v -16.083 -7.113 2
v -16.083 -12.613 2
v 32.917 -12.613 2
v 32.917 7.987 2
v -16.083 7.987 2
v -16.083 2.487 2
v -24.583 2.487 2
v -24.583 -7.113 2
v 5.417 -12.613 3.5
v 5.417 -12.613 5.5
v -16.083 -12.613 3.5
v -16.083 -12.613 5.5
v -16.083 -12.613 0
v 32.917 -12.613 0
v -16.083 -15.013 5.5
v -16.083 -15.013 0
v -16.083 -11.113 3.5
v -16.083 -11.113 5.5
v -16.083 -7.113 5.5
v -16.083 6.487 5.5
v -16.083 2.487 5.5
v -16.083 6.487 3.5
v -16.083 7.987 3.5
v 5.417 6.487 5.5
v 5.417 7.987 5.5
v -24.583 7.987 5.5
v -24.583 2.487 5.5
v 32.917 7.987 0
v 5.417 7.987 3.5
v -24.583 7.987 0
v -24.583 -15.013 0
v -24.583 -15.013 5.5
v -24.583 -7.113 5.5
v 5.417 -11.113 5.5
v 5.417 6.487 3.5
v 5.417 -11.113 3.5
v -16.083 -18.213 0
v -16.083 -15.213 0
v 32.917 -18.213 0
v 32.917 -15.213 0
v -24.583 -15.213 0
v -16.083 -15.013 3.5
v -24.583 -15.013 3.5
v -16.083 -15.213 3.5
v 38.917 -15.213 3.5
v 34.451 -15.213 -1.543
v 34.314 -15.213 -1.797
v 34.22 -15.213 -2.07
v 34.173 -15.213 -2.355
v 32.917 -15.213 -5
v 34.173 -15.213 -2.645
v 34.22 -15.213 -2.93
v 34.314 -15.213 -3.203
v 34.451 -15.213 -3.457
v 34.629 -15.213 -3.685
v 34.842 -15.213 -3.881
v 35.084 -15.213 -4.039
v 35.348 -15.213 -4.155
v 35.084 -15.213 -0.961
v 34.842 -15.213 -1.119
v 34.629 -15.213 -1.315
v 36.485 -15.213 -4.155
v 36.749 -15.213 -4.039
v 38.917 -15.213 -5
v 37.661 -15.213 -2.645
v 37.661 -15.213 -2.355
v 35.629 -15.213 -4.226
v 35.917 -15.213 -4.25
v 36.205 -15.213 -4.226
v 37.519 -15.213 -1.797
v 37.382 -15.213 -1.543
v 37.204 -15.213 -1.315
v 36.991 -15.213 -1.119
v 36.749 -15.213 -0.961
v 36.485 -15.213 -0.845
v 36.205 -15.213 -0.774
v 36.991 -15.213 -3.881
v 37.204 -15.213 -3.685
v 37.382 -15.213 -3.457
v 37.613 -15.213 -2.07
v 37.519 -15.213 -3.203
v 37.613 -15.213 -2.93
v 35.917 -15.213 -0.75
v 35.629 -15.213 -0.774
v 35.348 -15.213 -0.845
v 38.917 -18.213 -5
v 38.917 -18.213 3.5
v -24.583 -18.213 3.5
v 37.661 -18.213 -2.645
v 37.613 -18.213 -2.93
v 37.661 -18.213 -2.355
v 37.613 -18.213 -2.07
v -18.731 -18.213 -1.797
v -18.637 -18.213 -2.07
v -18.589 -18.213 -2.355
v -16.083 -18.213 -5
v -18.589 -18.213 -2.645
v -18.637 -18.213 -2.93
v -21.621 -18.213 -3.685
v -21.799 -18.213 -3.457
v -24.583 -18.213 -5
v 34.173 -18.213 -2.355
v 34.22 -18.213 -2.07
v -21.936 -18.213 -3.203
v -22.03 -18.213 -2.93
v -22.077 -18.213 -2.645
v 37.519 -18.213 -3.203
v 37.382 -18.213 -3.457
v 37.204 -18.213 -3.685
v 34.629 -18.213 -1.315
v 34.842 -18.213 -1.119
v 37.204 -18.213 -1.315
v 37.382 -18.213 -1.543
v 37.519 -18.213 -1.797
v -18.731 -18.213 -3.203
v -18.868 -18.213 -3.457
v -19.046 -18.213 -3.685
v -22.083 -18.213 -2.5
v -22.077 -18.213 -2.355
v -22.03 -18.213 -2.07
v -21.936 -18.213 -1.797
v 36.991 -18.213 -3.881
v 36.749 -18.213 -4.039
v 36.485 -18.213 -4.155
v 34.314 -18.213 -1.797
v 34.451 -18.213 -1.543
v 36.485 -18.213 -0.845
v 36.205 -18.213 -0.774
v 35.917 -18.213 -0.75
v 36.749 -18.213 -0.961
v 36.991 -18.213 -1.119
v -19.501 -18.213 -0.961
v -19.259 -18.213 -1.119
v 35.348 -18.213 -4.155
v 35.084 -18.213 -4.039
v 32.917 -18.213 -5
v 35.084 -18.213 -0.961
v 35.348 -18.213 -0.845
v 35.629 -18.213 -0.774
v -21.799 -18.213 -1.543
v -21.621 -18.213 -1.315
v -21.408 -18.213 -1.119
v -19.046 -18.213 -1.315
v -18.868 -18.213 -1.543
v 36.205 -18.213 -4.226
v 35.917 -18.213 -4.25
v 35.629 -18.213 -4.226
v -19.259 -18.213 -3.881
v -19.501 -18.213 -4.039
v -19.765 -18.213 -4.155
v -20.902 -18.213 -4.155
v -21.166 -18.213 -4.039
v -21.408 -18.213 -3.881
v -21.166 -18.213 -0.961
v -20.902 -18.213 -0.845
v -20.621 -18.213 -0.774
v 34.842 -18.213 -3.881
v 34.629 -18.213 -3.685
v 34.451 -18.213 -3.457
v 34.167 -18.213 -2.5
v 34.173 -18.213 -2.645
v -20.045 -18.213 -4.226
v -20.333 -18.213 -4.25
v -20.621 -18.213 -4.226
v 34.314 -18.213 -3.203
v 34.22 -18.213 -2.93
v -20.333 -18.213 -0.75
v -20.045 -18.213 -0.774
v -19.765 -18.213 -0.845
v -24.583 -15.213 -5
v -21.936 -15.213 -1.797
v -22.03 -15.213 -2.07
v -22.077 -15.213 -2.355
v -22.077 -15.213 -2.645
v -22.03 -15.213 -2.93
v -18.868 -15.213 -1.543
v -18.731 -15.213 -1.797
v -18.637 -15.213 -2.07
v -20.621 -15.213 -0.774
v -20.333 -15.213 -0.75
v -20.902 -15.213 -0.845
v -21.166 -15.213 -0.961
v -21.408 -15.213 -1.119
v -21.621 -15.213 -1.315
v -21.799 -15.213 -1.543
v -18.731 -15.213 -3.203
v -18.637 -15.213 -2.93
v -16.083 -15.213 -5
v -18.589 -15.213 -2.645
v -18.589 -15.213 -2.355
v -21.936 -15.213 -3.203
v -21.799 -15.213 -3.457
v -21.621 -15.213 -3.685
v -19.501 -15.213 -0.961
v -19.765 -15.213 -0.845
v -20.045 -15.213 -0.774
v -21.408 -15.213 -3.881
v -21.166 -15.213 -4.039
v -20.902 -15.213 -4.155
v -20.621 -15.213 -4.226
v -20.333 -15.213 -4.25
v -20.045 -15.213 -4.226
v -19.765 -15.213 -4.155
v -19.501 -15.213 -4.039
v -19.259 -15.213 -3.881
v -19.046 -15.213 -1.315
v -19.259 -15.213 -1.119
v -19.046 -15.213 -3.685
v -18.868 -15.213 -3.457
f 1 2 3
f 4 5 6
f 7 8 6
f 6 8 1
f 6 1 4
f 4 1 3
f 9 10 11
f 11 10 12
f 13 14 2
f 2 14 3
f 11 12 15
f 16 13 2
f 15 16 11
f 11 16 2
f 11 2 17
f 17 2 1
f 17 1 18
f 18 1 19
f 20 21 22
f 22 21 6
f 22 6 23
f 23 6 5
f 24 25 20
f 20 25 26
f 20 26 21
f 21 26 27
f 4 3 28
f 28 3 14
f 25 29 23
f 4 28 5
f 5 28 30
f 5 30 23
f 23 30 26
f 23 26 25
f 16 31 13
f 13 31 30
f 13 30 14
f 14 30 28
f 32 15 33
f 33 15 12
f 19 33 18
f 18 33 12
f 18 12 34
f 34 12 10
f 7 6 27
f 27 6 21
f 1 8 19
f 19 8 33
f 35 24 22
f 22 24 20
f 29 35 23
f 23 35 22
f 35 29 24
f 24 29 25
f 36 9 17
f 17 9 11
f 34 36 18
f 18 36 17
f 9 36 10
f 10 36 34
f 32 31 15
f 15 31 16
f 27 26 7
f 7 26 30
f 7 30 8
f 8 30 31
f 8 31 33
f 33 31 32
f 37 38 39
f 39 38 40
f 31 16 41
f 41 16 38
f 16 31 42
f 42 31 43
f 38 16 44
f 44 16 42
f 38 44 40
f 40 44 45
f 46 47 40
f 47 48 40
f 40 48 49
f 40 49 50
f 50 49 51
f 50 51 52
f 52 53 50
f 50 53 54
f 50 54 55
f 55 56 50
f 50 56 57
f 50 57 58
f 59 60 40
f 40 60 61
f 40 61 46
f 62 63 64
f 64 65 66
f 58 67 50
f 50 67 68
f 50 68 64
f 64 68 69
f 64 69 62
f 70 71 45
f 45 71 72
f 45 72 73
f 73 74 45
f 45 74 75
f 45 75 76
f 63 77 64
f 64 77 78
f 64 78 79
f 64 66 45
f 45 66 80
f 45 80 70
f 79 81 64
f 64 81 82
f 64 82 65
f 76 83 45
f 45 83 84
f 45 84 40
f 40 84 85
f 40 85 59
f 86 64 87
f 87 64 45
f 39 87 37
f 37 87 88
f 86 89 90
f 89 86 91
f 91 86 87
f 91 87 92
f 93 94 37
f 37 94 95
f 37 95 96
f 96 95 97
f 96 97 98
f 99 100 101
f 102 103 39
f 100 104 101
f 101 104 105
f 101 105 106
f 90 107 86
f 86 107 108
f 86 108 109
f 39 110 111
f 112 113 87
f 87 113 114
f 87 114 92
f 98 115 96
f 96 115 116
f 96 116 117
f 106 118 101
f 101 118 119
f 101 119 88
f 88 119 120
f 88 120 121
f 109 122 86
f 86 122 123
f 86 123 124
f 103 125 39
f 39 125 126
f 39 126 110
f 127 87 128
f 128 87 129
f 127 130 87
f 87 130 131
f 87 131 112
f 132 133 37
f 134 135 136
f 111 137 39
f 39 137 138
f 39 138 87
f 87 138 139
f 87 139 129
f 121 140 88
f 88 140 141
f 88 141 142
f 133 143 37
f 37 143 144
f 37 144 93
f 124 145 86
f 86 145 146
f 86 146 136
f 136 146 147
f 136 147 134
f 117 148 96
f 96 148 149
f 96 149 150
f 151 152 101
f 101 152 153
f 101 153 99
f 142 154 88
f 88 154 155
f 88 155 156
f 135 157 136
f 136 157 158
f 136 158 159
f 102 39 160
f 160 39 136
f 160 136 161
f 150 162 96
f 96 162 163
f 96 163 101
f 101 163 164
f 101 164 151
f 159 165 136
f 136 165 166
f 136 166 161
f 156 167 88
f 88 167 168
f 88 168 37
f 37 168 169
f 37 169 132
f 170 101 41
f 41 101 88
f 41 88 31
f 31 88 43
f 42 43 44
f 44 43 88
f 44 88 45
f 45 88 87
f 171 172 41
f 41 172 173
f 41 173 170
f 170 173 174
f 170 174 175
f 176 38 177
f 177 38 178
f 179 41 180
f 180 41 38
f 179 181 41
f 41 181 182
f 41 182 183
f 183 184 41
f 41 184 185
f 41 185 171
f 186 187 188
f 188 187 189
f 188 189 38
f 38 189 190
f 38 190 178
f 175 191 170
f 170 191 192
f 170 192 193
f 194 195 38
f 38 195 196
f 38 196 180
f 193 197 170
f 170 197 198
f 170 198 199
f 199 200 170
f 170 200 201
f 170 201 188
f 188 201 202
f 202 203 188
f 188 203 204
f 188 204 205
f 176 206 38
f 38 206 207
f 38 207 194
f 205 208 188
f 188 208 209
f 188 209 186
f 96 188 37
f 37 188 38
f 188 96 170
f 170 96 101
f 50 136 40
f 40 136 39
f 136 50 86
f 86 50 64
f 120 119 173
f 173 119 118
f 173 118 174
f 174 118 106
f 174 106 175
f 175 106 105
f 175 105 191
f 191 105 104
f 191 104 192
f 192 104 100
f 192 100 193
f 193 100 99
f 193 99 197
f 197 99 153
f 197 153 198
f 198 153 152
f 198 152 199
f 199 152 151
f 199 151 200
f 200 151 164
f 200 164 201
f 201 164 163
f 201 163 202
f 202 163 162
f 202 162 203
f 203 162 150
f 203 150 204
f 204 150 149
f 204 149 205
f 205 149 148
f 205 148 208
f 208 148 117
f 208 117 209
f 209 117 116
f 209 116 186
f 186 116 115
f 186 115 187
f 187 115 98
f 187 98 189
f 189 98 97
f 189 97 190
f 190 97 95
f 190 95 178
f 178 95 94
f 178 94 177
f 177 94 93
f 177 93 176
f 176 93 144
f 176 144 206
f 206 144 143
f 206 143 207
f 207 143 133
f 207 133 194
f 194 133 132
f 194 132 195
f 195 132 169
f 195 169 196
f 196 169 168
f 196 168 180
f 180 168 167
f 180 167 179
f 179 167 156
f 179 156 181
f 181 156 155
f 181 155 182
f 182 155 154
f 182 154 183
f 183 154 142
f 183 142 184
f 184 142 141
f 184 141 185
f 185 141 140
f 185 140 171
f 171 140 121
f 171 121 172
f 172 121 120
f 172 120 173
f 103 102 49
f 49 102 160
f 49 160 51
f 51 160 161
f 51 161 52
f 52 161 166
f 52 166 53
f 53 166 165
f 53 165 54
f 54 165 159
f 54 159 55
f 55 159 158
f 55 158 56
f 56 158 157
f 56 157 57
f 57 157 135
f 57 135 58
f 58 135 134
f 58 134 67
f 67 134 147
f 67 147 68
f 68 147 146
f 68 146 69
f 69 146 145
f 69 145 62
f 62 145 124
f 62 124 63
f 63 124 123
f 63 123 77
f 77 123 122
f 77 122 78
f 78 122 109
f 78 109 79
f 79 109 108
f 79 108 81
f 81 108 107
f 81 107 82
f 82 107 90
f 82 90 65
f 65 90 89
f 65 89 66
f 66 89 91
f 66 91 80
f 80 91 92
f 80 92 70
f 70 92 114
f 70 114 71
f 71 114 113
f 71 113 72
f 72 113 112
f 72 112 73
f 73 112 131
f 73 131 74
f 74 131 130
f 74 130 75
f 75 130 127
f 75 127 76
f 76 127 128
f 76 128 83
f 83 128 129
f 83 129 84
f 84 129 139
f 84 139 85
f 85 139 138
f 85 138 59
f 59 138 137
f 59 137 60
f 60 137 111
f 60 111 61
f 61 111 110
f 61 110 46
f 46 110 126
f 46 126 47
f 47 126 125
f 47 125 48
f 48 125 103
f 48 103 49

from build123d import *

# Parameters (mm, degrees)
ESBO_O1_W                 = 52.5
ESBO_O1_H                 = 20.6
RESSALTO_EXTRUS_O1_DEPTH  = 2
ESBO_O2_W                 = 3.5
ESBO_O2_H                 = 20.6
RESSALTO_EXTRUS_O2_DEPTH  = 3.5
ESBO_O3_W                 = 3.5
ESBO_O3_H                 = 9.6
CORTE_EXTRUS_O1_DEPTH     = 3.5
ESBO_O4_W                 = 2
ESBO_O4_H                 = 1.5
RESSALTO_EXTRUS_O3_DEPTH  = 21.5
RESSALTO_EXTRUS_O4_DEPTH  = 2
ESBO_O9_W                 = 5
ESBO_O9_H                 = 5.5
RESSALTO_EXTRUS_O8_DEPTH  = 3.5
RESSALTO_EXTRUS_O9_DEPTH  = 3.5
ESBO_O11_W                = 8.5
ESBO_O11_H                = 3
ESBO_O11_W_2              = 6
RESSALTO_EXTRUS_O10_DEPTH = 5
ESBO_O12_R                = 1.75
CORTE_EXTRUS_O2_DEPTH     = 5


with BuildPart() as part:
    # Esboço1 → Ressalto-extrusão1 (new body)
    with BuildSketch(Plane.XY):
        with Locations((6.666541047, -2.313135593)):
            Rectangle(ESBO_O1_W, ESBO_O1_H)
    extrude(amount=RESSALTO_EXTRUS_O1_DEPTH)

    # Esboço2 → Ressalto-extrusão2 (add)
    with BuildSketch(Plane.XY.offset(2)):
        with Locations((-17.833458953, -2.313135593)):
            Rectangle(ESBO_O2_W, ESBO_O2_H)
    extrude(amount=RESSALTO_EXTRUS_O2_DEPTH)

    # Esboço3 → Corte-extrusão1 (cut)
    with BuildSketch(Plane.XY.offset(5.5)):
        with Locations((-17.833458953, -2.313135593)):
            Rectangle(ESBO_O3_W, ESBO_O3_H)
    extrude(amount=-CORTE_EXTRUS_O1_DEPTH, mode=Mode.SUBTRACT)

    # Esboço4 → Ressalto-extrusão3 (add)
    with BuildSketch(Plane(origin=(-16.083458953, 0, 0), x_dir=(0, 0, -1), z_dir=(1, 0, 0))):
        with Locations((-4.5, 7.236864407)):
            Rectangle(ESBO_O4_W, ESBO_O4_H)
        with Locations((-4.5, -11.863135593)):
            Rectangle(ESBO_O4_W, ESBO_O4_H)
    extrude(amount=RESSALTO_EXTRUS_O3_DEPTH)

    # Esboço5 → Ressalto-extrusão4 (add)
    with BuildSketch(Plane.XY.offset(2)):
        Polygon((-19.583458953, 7.986864407), (-24.583458953, 7.986864407), (-24.583458953, -12.613135593), (-24.583458953, -15.013135593), (-16.083458953, -15.013135593), (-16.083458953, -12.613135593), (-19.583458953, -12.613135593), align=None)
    extrude(amount=-RESSALTO_EXTRUS_O4_DEPTH)

    # Esboço9 → Ressalto-extrusão8 (add, through all)
    with BuildSketch(Plane.XY.offset(2)):
        Polygon((-19.583458953, -7.113135593), (-24.583458953, -7.113135593), (-24.583458953, -15.013135593), (-16.083458953, -15.013135593), (-16.083458953, -12.613135593), (-19.583458953, -12.613135593), align=None)
        with Locations((-22.083458953, 5.236864407)):
            Rectangle(ESBO_O9_W, ESBO_O9_H)
    extrude(amount=RESSALTO_EXTRUS_O8_DEPTH)


with BuildPart() as body_2:
    # Esboço10 → Ressalto-extrusão9 (new, through all)
    with BuildSketch(Plane(origin=(0, 0, 3.5), x_dir=(-1, 0, 0), z_dir=(0, 0, -1))):
        Polygon((16.083458953, -15.213135593), (-38.916541047, -15.213135593), (-38.916541047, -18.213135593), (24.583458953, -18.213135593), (24.583458953, -15.213135593), (24.583458953, -15.013135593), (16.083458953, -15.013135593), align=None)
    extrude(amount=RESSALTO_EXTRUS_O9_DEPTH)

    # Esboço11 → Ressalto-extrusão10 (add)
    with BuildSketch(Plane(origin=(0, 0, 0), x_dir=(-1, 0, 0), z_dir=(0, 0, -1))):
        with Locations((20.333458953, -16.713135593)):
            Rectangle(ESBO_O11_W, ESBO_O11_H)
        with Locations((-35.916541047, -16.713135593)):
            Rectangle(ESBO_O11_W_2, ESBO_O11_H)
    extrude(amount=RESSALTO_EXTRUS_O10_DEPTH)

    # Esboço12 → Corte-extrusão2 (cut)
    with BuildSketch(Plane(origin=(0, -15.213135593, 0), x_dir=(1, 0, 0), z_dir=(0, 1, 0))):
        with Locations(Location((35.916541047, 2.5, 0), (0, 0, 270))):
            Circle(ESBO_O12_R)
        with Locations(Location((-20.333458953, 2.5, 0), (0, 0, 270))):
            Circle(ESBO_O12_R)
    extrude(amount=-CORTE_EXTRUS_O2_DEPTH, mode=Mode.SUBTRACT)


solid = Compound([part.part, body_2.part])
